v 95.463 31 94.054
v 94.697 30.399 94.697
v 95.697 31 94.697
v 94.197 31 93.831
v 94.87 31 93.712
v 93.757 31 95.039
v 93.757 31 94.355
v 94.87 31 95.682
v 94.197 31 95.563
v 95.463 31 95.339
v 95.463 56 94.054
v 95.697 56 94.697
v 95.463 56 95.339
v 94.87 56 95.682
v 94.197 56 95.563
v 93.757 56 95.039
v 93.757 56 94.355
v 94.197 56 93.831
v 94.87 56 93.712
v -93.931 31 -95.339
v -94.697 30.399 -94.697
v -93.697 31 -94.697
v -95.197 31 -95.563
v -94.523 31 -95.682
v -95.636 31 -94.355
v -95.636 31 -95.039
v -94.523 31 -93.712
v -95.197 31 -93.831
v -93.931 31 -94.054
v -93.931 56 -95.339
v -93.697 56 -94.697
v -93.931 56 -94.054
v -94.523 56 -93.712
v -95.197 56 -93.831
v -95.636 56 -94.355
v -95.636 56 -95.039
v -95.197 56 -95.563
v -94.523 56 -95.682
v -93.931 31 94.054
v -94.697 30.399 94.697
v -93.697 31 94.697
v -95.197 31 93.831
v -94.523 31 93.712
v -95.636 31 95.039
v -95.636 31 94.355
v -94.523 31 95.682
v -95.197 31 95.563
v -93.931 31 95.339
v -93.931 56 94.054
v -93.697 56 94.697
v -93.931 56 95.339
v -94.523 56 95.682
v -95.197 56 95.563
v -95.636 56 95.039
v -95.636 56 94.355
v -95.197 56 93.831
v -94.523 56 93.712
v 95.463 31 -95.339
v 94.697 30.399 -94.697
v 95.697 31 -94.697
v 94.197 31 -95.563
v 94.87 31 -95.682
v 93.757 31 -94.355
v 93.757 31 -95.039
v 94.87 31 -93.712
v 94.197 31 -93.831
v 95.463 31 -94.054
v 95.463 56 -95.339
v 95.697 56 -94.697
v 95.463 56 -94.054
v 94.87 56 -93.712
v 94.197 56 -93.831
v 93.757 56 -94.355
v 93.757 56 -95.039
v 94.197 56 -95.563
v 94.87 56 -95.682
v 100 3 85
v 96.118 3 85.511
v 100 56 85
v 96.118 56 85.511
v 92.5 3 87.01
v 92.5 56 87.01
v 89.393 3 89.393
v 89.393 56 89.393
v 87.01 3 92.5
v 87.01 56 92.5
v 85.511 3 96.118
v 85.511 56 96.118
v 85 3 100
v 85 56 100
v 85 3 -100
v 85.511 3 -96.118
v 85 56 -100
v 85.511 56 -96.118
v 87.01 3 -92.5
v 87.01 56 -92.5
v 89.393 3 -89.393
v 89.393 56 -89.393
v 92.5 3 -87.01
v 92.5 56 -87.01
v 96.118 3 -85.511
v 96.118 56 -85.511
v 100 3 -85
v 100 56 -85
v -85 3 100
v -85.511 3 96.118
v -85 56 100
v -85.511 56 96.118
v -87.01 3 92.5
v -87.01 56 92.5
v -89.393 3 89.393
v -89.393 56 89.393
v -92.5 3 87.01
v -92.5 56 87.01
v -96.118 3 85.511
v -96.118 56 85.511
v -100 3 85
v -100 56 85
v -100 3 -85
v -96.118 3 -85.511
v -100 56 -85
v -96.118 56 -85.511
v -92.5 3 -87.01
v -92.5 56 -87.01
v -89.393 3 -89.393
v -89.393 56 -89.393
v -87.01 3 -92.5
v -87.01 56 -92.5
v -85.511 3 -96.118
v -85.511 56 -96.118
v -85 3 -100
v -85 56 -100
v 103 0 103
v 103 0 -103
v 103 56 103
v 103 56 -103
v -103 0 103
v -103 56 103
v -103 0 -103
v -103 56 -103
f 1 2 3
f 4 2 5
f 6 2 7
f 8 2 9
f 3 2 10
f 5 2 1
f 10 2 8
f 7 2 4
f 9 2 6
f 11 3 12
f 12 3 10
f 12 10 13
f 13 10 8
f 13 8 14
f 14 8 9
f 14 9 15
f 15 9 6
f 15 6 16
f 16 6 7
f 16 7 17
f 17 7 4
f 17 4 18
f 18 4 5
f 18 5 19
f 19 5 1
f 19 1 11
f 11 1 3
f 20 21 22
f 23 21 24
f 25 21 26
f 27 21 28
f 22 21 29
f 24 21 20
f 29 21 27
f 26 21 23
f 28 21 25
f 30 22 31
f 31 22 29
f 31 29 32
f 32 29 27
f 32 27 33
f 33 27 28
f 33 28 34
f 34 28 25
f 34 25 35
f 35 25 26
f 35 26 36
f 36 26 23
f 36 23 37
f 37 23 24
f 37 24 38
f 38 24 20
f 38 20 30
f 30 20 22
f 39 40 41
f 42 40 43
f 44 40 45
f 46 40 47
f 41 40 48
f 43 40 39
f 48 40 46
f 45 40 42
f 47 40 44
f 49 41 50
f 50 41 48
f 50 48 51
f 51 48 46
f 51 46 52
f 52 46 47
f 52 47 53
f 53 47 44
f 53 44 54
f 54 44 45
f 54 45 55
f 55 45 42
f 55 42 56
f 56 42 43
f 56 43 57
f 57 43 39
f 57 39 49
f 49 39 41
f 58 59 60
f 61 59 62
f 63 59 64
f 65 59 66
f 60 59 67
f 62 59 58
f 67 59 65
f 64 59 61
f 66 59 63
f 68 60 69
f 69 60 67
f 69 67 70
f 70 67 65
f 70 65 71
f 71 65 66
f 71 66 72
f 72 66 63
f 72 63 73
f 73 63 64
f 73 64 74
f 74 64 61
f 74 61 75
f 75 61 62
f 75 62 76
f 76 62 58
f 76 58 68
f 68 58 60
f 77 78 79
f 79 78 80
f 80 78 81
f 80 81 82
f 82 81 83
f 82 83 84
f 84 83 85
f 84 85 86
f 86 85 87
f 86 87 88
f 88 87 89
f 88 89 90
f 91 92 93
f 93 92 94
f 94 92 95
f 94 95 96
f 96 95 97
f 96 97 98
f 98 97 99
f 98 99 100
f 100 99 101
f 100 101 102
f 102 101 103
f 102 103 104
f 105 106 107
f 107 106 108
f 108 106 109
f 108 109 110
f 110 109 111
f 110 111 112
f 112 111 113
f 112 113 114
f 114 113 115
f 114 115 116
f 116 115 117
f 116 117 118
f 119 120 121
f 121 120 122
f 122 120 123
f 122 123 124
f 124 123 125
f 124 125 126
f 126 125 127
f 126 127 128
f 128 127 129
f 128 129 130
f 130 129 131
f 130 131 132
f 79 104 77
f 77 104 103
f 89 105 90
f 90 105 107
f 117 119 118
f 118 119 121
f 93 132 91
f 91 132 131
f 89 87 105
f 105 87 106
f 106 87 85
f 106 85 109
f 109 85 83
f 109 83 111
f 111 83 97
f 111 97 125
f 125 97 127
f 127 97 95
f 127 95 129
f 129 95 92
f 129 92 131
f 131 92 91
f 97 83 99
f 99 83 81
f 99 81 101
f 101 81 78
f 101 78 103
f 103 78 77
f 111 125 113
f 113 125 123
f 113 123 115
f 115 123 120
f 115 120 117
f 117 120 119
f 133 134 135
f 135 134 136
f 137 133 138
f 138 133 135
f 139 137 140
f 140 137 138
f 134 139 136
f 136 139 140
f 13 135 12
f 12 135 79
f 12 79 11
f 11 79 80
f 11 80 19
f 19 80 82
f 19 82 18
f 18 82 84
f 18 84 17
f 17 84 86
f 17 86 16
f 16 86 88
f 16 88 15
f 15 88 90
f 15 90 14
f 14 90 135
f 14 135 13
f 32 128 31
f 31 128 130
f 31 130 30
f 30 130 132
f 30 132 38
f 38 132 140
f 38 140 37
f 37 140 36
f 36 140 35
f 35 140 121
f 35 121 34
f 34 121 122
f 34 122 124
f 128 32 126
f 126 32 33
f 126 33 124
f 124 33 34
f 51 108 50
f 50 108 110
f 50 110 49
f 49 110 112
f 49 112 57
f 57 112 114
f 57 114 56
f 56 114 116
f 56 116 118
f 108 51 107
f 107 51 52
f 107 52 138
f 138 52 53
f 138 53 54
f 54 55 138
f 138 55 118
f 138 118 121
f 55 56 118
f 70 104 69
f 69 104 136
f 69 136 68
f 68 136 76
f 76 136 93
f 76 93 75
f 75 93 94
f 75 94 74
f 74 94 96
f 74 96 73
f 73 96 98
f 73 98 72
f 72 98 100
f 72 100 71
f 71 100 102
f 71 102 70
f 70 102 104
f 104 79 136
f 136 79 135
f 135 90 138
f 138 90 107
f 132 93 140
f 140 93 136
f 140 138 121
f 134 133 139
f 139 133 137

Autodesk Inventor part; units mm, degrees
ref_plane "YZ Plane" through (0, 0, 0) normal (1, 0, 0) x (0, 1, 0)
ref_plane "XZ Plane" through (0, 0, 0) normal (0, 1, 0) x (-1, 0, 0)
ref_plane "XY Plane" through (0, 0, 0) normal (0, 0, 1) x (1, 0, 0)
sketch "Boceto1" plane through (0, 0, 0) normal (0, 1, 0) x (-1, 0, 0)
  line L0 (-103, 103) -> (103, 103)
  line L1 (103, 103) -> (103, -103)
  line L2 (103, -103) -> (-103, -103)
  line L3 (-103, -103) -> (-103, 103)
  line L4 (-103, 103) -> (103, -103) construction
  line L5 (103, 103) -> (-103, -103) construction
  point P0 (0, 0)
  dimension "d0" = 206
  dimension "d1" = 206
extrude "Extrusión1" add sketch "Boceto1" along normal blind 56
shell "Vaciado1" thickness 3 removed faces 1 at (34.3333, 56, 34.3333)
sketch "Boceto2" plane through (-100, 3, -100) normal (0, 1, 0) x (1, 0, 0)
  line L0 (200, 0) -> (0, 0) projected
  arc A0 (0, -15) -> (15, 0) centre (0, 0) ccw
  line L1 (200, -200) -> (200, 0) projected
  arc A1 (185, 0) -> (200, -15) centre (200, 0) ccw
  line L2 (200, -200) -> (0, -200) projected
  arc A2 (200, -185) -> (185, -200) centre (200, -200) ccw
  line L3 (0, -200) -> (0, 0) projected
  arc A3 (15, -200) -> (0, -185) centre (0, -200) ccw
  line L4 (0, 0) -> (15, 0)
  line L5 (0, 0) -> (0, -15)
  line L6 (200, 0) -> (200, -15)
  line L7 (200, 0) -> (185, 0)
  line L8 (200, -200) -> (200, -185)
  line L9 (200, -200) -> (185, -200)
  line L10 (0, -200) -> (0, -185)
  line L11 (0, -200) -> (15, -200)
  point P0 (100, -100)
  dimension "d5" = 30
  dimension "d6" = 30
  dimension "d7" = 30
  dimension "d8" = 30
extrude "Extrusión2" add sketch "Boceto2" along normal blind 53 contours L1 A1 L0 | A0 L3 L0 | L1 L2 A2 | A3 L2 L3
sketch "Boceto3" plane through (0, 56, 0) normal (0, 1, 0) x (1, 0, 0)
  line L0 (85, 100) -> (103, 100)
  line L1 (103, -103) -> (103, 103) projected
  line L2 (100, -85) -> (100, 85) projected
  line L3 (100, 85) -> (100, 100)
  line L4 (100, 100) -> (116.202, 100) construction
  arc A0 (85, 100) -> (100, 85) centre (100, 100) ccw projected
  line L5 (89.3934, 89.3934) -> (89.3934, 100)
  line L6 (89.3934, 89.3934) -> (100, 89.3934)
  line L7 (89.3934, 100) -> (100, 89.3934)
  line L8 (89.3934, 89.3934) -> (100, 100)
  circle A1 centre (94.6967, 94.6967) radius 1
  circle A2 centre (-94.6967, 94.6967) radius 1
  circle A3 centre (-94.6967, -94.6967) radius 1
  circle A4 centre (94.6967, -94.6967) radius 1
  point P0 (0, 0)
  dimension "d12" = 2
  dimension "d15" = 360
hole "Agujero1" at (-94.6967, 56, -94.6967) at (-94.6967, 56, 94.6967) at (94.6967, 56, 94.6967) at (94.6967, 56, -94.6967) direction (0, -1, 0) diameter 2 depth 25 tip angle 118
properties part number "caja_cuboLed"
